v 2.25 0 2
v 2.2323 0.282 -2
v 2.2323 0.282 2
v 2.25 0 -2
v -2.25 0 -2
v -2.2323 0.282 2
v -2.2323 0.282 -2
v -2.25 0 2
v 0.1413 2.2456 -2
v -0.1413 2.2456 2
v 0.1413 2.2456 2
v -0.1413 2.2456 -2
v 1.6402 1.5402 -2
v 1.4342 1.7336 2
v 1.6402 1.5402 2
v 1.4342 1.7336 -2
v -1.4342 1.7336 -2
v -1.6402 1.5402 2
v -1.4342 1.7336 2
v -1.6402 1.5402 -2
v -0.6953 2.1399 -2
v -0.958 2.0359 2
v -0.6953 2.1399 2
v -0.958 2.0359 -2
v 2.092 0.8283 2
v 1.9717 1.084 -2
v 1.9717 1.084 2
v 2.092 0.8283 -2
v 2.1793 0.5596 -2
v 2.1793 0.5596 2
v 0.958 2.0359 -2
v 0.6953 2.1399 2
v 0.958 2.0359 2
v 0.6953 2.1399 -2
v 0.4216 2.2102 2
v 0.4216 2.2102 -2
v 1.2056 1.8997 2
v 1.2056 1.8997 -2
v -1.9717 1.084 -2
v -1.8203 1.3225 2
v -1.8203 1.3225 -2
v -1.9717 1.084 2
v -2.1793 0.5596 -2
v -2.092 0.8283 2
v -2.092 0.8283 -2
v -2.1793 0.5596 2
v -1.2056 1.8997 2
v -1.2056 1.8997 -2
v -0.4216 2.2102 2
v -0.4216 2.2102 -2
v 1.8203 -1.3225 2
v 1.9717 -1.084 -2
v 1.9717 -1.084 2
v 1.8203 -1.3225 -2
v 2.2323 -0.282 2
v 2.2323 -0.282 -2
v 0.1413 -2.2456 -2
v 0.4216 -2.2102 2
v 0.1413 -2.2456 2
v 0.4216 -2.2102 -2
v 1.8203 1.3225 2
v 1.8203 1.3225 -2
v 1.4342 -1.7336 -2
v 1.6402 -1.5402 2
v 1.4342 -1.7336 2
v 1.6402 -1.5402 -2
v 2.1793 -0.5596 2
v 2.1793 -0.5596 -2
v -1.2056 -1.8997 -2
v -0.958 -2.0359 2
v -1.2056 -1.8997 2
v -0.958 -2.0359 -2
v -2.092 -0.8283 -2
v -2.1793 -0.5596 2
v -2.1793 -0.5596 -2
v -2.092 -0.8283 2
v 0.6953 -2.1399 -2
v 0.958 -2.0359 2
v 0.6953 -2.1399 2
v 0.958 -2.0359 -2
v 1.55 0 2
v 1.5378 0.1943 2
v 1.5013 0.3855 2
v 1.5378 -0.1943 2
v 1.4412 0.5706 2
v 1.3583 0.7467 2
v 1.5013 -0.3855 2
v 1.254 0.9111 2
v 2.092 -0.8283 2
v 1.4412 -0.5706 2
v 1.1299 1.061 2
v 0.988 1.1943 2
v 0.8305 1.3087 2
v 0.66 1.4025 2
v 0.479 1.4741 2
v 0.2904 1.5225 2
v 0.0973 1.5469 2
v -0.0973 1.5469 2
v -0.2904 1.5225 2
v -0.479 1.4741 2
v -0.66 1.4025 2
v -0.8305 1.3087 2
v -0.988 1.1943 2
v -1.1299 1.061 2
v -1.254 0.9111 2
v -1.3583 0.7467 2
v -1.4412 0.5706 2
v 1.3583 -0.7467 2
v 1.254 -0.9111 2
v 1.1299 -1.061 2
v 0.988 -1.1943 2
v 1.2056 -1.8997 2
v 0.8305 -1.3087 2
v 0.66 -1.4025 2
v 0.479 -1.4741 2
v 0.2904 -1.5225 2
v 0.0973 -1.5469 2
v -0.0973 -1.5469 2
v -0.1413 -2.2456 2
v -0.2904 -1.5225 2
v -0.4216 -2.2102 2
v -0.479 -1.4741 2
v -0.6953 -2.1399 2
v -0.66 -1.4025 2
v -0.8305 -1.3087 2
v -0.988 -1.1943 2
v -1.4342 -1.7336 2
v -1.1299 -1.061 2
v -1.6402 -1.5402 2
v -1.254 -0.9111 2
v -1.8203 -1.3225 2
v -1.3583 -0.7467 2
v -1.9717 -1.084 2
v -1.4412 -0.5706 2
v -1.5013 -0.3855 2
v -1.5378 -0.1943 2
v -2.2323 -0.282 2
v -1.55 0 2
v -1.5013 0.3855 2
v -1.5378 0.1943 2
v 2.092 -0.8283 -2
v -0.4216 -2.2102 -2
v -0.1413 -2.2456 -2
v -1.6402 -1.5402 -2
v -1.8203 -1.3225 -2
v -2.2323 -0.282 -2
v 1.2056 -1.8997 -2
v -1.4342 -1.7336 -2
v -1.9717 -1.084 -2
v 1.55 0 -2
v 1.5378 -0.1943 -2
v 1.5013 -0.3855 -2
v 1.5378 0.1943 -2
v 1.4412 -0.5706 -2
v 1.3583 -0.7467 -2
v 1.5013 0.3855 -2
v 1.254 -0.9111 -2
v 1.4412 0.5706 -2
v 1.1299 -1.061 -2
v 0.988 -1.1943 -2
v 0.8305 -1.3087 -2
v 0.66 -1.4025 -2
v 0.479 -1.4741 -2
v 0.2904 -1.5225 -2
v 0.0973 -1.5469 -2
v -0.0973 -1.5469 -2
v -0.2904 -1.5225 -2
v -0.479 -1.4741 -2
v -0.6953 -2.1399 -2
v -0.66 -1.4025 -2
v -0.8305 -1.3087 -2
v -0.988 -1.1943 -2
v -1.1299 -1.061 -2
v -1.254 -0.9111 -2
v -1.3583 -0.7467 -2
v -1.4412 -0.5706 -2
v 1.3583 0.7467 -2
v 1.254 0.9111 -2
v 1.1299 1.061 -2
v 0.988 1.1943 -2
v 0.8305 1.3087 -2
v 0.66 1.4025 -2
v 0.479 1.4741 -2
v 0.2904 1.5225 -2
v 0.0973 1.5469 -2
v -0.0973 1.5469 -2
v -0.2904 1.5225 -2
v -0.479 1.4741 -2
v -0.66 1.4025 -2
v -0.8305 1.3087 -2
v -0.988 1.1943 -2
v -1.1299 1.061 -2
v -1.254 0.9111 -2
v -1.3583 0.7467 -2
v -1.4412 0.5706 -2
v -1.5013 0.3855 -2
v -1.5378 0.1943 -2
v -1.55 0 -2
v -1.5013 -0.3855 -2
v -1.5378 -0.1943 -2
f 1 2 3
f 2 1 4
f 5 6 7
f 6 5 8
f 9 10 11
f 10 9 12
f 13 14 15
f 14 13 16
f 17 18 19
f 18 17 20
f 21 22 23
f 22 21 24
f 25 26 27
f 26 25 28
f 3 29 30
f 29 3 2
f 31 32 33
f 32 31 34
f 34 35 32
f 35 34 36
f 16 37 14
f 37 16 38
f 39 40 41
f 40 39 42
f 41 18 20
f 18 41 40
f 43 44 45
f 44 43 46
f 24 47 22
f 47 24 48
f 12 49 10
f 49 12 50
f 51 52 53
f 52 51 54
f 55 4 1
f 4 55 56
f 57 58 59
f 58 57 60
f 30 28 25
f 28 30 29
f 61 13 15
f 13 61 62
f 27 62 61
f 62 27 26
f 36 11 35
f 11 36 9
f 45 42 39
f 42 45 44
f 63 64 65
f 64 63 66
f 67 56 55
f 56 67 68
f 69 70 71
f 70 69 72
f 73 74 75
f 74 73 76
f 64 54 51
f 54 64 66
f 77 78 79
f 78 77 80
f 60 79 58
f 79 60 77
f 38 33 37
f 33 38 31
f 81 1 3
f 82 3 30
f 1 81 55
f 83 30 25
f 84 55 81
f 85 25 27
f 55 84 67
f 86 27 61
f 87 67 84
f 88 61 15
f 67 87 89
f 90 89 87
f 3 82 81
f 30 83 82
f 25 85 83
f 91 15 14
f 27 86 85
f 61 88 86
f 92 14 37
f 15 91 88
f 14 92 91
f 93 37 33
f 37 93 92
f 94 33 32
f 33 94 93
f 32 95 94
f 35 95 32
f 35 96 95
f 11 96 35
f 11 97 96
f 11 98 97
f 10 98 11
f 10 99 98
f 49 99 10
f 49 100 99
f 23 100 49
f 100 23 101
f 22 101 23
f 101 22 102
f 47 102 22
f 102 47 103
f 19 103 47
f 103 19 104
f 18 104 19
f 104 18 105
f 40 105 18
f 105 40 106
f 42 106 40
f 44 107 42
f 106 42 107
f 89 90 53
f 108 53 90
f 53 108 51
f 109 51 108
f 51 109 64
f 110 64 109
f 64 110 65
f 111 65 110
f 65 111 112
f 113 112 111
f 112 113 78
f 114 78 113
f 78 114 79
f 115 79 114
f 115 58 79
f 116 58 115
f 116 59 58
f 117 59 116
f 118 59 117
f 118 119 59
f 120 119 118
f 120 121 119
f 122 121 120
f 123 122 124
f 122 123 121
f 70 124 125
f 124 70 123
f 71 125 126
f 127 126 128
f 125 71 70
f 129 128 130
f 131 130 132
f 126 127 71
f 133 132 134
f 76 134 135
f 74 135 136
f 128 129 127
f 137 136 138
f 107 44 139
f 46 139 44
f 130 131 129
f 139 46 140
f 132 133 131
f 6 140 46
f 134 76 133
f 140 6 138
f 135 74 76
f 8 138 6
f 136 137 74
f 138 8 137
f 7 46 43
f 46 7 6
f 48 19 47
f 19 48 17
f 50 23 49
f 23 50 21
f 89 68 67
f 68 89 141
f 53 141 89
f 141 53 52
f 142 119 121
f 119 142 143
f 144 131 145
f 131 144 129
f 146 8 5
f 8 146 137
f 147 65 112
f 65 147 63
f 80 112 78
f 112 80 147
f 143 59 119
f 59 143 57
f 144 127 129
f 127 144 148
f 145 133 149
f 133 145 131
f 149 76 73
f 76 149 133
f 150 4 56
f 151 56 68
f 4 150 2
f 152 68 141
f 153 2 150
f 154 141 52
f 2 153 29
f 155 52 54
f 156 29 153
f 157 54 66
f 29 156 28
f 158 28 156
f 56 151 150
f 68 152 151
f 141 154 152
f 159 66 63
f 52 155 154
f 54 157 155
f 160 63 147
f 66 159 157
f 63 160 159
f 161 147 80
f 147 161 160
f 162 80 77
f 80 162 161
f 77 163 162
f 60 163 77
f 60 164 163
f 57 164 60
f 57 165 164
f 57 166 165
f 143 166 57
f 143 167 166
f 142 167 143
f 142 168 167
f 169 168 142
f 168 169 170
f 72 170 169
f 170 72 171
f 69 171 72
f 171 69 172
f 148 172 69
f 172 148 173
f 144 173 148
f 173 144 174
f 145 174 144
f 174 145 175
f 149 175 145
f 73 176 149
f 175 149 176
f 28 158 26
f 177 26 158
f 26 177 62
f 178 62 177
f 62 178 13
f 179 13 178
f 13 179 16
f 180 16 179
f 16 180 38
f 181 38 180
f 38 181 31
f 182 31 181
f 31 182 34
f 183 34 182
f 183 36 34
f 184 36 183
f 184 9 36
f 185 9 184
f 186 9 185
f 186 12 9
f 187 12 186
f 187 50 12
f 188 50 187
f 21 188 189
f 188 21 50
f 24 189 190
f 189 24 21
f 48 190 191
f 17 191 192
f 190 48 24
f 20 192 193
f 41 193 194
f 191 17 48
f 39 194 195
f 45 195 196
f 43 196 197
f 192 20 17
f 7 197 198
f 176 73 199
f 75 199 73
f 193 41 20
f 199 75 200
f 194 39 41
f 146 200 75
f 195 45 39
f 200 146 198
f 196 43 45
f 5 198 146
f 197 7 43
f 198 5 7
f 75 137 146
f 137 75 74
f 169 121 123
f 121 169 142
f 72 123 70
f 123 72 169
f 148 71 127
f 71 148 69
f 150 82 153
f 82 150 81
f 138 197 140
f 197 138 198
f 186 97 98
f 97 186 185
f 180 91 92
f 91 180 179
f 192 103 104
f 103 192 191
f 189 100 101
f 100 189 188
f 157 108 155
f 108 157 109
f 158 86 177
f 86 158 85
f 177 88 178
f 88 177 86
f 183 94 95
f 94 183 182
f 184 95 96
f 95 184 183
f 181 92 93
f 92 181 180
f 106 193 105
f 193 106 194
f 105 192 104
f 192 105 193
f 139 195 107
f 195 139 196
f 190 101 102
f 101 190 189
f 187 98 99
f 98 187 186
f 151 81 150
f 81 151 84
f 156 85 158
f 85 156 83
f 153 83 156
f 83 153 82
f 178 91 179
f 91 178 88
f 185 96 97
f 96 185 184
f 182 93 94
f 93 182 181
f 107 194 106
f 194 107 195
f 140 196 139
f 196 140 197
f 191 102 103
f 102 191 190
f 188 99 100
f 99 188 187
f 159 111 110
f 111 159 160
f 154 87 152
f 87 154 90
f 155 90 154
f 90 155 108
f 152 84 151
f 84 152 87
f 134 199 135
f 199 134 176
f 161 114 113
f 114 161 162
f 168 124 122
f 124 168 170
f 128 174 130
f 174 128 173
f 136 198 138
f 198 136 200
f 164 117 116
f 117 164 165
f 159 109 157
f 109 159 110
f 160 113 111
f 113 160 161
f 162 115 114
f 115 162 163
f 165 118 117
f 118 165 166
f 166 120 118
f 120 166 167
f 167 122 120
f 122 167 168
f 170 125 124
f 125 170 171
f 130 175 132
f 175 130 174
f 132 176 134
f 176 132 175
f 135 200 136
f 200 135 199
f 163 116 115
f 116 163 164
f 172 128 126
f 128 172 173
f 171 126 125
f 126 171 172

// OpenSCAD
$fn = 50;


difference() {
	union() {
		translate(v = [0, 0, -2.0000000000]) {
			cylinder(h = 4, r = 2.2500000000);
		}
	}
	union() {
		translate(v = [0, 0, -100.0000000000]) {
			cylinder(h = 200, r = 1.5500000000);
		}
	}
}
